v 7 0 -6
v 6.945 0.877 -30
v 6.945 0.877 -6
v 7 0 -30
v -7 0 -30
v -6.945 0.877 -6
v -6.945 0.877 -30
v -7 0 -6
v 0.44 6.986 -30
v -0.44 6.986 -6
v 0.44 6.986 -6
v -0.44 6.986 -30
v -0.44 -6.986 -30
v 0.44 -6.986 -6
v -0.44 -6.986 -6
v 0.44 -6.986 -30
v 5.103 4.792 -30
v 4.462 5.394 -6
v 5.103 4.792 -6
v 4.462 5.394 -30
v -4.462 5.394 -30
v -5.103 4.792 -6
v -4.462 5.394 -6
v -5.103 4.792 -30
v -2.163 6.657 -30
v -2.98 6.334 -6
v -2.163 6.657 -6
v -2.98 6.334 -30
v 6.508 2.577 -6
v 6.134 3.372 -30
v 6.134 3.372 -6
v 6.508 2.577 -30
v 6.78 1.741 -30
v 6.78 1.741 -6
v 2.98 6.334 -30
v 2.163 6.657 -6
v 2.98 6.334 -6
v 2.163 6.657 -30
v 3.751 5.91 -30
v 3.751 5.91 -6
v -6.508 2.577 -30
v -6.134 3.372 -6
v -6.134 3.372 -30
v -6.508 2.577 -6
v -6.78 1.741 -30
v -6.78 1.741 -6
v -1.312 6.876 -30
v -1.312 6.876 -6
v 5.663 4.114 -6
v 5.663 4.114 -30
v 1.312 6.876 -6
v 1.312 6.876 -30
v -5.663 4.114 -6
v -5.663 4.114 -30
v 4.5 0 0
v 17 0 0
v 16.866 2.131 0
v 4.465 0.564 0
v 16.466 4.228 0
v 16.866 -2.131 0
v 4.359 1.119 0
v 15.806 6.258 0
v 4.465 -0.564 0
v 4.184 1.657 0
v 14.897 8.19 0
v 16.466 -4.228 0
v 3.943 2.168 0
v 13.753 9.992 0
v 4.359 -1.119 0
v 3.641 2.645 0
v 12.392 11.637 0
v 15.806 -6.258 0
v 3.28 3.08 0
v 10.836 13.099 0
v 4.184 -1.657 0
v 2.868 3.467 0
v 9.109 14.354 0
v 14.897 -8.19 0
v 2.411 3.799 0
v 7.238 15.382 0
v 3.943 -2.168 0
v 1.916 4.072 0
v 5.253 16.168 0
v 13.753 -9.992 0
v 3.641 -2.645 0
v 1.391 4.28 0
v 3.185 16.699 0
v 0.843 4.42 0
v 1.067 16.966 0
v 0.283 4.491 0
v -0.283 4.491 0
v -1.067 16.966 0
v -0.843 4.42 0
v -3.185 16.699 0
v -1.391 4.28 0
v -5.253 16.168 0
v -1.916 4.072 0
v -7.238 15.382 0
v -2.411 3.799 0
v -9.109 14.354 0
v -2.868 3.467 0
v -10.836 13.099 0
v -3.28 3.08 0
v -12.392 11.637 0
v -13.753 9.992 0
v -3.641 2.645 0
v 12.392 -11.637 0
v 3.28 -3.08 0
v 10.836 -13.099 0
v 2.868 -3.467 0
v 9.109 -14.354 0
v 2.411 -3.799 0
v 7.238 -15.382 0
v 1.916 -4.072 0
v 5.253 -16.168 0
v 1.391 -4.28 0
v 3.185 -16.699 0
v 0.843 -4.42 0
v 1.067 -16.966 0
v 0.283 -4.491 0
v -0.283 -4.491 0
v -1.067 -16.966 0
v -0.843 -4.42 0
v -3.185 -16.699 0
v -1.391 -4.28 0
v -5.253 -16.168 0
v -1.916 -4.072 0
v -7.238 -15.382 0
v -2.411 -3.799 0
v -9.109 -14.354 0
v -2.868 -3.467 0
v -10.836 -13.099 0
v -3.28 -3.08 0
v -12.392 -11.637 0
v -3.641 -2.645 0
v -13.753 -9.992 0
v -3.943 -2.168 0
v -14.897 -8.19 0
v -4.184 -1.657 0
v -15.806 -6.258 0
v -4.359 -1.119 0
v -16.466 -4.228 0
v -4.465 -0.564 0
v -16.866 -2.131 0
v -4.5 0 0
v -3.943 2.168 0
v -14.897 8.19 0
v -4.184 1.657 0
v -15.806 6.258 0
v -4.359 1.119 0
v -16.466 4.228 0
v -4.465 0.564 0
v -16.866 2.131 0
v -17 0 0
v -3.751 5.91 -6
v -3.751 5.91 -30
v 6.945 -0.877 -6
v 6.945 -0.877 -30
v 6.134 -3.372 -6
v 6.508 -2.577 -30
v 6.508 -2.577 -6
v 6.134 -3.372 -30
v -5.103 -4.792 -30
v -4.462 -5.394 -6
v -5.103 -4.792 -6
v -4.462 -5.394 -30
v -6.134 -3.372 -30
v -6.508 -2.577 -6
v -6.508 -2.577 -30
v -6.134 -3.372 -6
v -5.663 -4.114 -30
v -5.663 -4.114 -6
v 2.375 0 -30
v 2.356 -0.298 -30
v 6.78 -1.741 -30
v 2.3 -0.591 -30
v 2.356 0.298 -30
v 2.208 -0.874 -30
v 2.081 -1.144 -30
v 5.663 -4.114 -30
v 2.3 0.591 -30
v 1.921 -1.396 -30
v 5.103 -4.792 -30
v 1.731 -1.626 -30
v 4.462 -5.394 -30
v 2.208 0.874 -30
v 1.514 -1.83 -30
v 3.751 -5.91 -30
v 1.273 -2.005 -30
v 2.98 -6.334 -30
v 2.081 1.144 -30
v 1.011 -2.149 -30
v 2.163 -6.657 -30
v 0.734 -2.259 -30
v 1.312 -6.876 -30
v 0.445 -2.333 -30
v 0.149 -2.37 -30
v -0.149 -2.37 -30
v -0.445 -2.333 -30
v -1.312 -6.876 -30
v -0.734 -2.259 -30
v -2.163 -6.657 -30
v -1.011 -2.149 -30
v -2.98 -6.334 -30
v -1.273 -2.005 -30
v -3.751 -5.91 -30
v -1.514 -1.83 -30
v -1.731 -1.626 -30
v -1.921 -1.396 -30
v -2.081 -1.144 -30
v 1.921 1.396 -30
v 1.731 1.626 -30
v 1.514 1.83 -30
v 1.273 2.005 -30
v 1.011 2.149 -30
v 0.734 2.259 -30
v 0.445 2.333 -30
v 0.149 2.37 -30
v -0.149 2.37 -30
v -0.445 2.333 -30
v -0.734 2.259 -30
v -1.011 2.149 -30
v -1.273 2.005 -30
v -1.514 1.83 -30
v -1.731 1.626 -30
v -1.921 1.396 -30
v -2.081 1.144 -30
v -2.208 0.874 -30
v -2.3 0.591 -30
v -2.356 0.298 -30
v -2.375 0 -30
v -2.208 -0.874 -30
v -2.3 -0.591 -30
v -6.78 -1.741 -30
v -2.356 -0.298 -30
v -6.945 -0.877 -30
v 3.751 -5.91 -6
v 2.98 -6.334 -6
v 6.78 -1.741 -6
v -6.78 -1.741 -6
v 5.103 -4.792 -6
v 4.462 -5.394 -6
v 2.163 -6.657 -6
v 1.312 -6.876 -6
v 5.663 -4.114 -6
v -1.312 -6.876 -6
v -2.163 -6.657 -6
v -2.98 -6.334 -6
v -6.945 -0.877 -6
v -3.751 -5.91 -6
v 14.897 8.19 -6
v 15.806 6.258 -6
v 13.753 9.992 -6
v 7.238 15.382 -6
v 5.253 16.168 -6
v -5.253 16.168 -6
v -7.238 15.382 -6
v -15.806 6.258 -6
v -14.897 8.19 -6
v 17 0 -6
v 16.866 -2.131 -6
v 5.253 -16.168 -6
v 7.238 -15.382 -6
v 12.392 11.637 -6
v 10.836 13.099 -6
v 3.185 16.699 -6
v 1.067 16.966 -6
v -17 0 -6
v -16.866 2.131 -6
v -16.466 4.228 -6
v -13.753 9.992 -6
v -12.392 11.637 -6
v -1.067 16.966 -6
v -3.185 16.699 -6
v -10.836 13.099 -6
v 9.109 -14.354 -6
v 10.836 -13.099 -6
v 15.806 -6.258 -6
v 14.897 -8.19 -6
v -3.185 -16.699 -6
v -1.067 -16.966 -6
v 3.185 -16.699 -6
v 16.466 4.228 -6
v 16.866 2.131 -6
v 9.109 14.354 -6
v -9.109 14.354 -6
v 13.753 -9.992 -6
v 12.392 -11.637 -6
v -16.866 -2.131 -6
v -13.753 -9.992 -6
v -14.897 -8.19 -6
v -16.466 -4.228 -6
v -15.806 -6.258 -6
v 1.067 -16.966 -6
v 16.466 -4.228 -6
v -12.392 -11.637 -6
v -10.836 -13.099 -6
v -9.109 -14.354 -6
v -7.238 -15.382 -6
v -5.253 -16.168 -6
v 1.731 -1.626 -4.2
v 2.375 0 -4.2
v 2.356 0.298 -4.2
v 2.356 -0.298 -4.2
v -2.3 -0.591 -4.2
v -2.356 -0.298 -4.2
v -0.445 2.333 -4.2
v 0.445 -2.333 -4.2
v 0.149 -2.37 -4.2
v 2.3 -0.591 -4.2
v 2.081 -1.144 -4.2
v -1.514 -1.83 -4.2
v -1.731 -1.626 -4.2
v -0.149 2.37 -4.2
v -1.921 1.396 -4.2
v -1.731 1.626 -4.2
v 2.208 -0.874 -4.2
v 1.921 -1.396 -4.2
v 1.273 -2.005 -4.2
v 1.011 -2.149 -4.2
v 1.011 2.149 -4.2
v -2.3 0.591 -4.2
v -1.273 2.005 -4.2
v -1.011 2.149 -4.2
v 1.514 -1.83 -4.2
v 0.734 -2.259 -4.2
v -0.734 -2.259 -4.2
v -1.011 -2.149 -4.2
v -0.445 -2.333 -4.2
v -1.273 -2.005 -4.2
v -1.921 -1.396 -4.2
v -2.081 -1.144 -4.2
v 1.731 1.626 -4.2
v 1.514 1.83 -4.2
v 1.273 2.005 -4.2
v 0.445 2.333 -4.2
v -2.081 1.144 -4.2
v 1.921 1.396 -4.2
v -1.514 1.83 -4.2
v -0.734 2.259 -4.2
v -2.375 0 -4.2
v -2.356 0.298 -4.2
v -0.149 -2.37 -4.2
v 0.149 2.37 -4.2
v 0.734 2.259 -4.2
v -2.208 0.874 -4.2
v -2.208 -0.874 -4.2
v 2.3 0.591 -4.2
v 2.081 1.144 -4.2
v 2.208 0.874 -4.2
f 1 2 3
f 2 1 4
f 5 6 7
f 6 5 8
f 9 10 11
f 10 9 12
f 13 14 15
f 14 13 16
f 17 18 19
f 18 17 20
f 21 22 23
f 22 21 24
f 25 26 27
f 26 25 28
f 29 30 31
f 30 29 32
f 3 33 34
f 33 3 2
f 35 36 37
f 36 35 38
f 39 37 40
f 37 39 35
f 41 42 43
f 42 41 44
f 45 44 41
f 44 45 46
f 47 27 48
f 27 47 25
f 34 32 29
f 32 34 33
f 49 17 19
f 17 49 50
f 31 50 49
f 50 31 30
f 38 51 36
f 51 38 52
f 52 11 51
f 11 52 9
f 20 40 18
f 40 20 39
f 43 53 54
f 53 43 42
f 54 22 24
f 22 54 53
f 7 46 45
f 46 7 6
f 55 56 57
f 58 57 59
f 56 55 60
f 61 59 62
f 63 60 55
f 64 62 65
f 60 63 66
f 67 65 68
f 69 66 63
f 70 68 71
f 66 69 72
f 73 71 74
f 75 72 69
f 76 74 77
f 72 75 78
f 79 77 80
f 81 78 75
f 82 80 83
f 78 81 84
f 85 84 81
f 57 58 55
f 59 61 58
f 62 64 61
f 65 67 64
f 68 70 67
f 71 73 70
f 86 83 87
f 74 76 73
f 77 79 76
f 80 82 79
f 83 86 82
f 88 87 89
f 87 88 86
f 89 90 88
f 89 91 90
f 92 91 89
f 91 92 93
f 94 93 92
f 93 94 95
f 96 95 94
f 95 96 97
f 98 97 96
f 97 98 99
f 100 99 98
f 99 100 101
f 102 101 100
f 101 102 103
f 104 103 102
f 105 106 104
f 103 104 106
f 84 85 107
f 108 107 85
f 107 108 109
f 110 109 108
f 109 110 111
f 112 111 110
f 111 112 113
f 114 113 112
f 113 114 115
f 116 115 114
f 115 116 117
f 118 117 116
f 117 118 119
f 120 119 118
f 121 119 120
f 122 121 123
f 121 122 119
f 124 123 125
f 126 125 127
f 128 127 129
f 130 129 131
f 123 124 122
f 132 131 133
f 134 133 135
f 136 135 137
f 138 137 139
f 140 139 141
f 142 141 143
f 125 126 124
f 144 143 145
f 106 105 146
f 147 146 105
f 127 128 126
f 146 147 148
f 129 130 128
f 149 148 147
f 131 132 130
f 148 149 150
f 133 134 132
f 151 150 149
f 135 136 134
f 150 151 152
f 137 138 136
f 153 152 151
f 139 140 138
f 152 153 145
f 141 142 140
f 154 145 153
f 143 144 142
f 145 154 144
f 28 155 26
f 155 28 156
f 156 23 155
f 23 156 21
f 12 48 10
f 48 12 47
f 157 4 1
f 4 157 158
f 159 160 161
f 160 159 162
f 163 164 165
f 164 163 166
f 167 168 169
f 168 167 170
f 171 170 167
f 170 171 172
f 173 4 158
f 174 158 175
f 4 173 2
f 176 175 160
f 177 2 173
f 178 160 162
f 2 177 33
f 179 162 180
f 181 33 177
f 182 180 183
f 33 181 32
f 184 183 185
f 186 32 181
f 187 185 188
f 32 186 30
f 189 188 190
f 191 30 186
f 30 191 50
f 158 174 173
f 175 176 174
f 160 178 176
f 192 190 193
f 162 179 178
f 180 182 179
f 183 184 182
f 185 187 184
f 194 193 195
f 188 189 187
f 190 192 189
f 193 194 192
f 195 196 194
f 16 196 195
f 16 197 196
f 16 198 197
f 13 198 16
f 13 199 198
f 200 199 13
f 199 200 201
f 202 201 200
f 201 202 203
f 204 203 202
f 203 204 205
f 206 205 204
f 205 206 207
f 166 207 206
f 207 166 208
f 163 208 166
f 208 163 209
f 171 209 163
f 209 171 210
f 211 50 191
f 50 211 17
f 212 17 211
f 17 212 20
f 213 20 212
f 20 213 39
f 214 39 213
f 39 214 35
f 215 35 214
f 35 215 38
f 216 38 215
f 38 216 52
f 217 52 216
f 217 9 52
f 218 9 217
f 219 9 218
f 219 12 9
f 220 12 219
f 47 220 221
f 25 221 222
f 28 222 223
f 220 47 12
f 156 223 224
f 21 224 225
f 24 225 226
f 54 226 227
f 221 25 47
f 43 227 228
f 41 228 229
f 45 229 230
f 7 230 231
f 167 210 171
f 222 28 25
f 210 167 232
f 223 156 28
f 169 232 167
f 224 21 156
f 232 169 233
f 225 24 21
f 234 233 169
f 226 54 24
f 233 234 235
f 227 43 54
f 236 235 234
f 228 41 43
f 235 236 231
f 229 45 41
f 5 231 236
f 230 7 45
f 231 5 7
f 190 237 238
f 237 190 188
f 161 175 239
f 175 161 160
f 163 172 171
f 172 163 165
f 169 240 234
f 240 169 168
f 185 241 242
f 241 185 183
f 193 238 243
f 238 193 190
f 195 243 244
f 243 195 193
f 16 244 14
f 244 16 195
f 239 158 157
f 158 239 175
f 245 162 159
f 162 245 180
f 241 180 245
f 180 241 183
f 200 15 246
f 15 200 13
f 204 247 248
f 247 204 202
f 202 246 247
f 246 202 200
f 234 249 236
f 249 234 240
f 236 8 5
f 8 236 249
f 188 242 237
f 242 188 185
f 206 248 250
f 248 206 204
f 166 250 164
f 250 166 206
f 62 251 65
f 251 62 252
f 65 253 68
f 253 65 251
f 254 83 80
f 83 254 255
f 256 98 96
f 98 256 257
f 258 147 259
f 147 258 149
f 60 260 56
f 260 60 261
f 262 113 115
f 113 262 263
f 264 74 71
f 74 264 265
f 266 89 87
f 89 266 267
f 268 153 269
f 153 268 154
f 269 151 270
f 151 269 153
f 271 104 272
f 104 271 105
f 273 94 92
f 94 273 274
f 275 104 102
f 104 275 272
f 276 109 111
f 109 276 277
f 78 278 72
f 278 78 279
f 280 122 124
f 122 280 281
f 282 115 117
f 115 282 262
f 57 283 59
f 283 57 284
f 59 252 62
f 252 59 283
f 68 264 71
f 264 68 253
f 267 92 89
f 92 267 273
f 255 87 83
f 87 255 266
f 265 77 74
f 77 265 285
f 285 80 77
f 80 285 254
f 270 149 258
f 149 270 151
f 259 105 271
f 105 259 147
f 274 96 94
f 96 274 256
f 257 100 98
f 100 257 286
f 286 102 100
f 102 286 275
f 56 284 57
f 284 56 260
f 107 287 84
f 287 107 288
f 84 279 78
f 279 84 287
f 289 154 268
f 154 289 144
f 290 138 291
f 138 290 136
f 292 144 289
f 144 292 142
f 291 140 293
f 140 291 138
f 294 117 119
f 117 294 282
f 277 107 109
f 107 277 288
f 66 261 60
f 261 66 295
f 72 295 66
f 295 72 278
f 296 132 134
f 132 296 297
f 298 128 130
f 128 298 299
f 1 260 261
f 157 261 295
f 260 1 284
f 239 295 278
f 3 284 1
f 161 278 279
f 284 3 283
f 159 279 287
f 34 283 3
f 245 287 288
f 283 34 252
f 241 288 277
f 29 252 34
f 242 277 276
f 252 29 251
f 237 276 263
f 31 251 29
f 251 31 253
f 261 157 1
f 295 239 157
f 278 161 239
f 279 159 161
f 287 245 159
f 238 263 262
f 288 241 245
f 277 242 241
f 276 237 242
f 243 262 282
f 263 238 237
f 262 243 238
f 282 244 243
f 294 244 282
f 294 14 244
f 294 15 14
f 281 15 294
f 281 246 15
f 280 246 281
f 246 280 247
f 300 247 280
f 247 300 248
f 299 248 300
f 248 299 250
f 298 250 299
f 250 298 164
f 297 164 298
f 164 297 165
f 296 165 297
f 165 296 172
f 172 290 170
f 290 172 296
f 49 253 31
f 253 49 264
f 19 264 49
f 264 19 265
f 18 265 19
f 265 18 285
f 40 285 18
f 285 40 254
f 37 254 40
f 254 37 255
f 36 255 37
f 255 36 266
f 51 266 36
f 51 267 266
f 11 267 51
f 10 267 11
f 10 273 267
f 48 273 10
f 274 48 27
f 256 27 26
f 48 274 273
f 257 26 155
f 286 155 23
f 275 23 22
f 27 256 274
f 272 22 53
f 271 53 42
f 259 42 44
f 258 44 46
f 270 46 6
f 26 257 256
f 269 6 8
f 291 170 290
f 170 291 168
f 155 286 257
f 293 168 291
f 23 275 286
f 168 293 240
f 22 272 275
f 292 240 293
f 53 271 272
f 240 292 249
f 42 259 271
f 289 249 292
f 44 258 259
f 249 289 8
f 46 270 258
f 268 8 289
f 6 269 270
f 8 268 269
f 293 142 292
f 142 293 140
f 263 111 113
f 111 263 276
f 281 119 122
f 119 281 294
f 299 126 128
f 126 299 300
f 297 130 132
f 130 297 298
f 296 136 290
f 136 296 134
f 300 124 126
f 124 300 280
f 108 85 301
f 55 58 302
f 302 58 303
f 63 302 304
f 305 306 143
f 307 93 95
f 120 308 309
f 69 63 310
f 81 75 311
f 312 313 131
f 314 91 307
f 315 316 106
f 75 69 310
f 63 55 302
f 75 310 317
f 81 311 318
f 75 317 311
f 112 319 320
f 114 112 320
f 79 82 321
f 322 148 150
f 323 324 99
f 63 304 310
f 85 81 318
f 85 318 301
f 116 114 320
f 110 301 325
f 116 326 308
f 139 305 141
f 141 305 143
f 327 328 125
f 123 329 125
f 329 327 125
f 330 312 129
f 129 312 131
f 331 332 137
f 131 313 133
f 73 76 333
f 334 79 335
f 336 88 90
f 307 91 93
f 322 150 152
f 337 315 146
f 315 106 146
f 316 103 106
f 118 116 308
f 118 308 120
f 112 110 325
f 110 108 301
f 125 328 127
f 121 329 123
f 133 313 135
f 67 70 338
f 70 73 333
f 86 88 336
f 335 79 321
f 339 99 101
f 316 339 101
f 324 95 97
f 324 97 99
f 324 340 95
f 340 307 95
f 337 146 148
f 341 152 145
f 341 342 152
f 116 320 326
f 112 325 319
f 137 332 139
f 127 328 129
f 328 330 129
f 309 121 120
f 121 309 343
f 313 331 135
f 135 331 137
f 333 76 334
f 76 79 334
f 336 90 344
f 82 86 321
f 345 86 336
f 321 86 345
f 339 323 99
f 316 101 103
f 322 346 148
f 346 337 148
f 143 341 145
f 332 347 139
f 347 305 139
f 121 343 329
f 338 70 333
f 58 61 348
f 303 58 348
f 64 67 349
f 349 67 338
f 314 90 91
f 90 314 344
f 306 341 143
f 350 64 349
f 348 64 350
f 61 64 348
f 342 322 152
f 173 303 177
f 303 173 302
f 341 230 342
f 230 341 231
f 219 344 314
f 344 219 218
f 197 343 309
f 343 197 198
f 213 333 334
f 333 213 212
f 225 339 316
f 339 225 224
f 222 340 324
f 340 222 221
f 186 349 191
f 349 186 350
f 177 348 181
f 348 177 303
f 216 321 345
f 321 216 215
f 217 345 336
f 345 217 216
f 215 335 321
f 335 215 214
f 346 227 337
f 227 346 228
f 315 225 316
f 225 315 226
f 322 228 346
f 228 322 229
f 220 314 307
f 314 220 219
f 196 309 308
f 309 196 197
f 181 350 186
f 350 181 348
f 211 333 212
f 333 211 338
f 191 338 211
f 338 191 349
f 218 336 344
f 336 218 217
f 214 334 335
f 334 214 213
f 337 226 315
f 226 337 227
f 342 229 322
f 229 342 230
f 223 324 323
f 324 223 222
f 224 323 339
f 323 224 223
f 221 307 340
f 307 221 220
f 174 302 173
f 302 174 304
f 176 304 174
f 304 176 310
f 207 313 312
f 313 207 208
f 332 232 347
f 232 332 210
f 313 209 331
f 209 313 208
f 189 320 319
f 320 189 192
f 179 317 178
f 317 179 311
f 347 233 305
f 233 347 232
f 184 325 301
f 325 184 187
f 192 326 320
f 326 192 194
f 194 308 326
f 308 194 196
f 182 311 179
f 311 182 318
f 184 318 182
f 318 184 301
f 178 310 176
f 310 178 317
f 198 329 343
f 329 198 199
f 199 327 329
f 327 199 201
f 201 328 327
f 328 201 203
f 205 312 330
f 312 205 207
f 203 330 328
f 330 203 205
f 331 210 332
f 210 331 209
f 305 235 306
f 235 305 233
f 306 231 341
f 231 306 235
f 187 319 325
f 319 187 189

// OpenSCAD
$fn = 50;


difference() {
	union() {
		translate(v = [0, 0, -30.0000000000]) {
			cylinder(h = 30, r = 7.0000000000);
		}
		translate(v = [0, 0, -6.0000000000]) {
			cylinder(h = 6, r = 17.0000000000);
		}
	}
	union() {
		translate(v = [0, 0, 0]) {
			rotate(a = [0, 0, 0]) {
				difference() {
					union() {
						#translate(v = [0, 0, -30.0000000000]) {
							cylinder(h = 30, r = 2.2500000000);
						}
						#translate(v = [0, 0, -4.2000000000]) {
							cylinder(h = 4.2000000000, r = 7.0000000000, r1 = 2.3750000000, r2 = 4.5000000000);
						}
						#translate(v = [0, 0, -30.0000000000]) {
							cylinder(h = 30, r = 2.3750000000);
						}
						#translate(v = [0, 0, -30.0000000000]) {
							cylinder(h = 30, r = 2.2500000000);
						}
					}
					union();
				}
			}
		}
	}
}
